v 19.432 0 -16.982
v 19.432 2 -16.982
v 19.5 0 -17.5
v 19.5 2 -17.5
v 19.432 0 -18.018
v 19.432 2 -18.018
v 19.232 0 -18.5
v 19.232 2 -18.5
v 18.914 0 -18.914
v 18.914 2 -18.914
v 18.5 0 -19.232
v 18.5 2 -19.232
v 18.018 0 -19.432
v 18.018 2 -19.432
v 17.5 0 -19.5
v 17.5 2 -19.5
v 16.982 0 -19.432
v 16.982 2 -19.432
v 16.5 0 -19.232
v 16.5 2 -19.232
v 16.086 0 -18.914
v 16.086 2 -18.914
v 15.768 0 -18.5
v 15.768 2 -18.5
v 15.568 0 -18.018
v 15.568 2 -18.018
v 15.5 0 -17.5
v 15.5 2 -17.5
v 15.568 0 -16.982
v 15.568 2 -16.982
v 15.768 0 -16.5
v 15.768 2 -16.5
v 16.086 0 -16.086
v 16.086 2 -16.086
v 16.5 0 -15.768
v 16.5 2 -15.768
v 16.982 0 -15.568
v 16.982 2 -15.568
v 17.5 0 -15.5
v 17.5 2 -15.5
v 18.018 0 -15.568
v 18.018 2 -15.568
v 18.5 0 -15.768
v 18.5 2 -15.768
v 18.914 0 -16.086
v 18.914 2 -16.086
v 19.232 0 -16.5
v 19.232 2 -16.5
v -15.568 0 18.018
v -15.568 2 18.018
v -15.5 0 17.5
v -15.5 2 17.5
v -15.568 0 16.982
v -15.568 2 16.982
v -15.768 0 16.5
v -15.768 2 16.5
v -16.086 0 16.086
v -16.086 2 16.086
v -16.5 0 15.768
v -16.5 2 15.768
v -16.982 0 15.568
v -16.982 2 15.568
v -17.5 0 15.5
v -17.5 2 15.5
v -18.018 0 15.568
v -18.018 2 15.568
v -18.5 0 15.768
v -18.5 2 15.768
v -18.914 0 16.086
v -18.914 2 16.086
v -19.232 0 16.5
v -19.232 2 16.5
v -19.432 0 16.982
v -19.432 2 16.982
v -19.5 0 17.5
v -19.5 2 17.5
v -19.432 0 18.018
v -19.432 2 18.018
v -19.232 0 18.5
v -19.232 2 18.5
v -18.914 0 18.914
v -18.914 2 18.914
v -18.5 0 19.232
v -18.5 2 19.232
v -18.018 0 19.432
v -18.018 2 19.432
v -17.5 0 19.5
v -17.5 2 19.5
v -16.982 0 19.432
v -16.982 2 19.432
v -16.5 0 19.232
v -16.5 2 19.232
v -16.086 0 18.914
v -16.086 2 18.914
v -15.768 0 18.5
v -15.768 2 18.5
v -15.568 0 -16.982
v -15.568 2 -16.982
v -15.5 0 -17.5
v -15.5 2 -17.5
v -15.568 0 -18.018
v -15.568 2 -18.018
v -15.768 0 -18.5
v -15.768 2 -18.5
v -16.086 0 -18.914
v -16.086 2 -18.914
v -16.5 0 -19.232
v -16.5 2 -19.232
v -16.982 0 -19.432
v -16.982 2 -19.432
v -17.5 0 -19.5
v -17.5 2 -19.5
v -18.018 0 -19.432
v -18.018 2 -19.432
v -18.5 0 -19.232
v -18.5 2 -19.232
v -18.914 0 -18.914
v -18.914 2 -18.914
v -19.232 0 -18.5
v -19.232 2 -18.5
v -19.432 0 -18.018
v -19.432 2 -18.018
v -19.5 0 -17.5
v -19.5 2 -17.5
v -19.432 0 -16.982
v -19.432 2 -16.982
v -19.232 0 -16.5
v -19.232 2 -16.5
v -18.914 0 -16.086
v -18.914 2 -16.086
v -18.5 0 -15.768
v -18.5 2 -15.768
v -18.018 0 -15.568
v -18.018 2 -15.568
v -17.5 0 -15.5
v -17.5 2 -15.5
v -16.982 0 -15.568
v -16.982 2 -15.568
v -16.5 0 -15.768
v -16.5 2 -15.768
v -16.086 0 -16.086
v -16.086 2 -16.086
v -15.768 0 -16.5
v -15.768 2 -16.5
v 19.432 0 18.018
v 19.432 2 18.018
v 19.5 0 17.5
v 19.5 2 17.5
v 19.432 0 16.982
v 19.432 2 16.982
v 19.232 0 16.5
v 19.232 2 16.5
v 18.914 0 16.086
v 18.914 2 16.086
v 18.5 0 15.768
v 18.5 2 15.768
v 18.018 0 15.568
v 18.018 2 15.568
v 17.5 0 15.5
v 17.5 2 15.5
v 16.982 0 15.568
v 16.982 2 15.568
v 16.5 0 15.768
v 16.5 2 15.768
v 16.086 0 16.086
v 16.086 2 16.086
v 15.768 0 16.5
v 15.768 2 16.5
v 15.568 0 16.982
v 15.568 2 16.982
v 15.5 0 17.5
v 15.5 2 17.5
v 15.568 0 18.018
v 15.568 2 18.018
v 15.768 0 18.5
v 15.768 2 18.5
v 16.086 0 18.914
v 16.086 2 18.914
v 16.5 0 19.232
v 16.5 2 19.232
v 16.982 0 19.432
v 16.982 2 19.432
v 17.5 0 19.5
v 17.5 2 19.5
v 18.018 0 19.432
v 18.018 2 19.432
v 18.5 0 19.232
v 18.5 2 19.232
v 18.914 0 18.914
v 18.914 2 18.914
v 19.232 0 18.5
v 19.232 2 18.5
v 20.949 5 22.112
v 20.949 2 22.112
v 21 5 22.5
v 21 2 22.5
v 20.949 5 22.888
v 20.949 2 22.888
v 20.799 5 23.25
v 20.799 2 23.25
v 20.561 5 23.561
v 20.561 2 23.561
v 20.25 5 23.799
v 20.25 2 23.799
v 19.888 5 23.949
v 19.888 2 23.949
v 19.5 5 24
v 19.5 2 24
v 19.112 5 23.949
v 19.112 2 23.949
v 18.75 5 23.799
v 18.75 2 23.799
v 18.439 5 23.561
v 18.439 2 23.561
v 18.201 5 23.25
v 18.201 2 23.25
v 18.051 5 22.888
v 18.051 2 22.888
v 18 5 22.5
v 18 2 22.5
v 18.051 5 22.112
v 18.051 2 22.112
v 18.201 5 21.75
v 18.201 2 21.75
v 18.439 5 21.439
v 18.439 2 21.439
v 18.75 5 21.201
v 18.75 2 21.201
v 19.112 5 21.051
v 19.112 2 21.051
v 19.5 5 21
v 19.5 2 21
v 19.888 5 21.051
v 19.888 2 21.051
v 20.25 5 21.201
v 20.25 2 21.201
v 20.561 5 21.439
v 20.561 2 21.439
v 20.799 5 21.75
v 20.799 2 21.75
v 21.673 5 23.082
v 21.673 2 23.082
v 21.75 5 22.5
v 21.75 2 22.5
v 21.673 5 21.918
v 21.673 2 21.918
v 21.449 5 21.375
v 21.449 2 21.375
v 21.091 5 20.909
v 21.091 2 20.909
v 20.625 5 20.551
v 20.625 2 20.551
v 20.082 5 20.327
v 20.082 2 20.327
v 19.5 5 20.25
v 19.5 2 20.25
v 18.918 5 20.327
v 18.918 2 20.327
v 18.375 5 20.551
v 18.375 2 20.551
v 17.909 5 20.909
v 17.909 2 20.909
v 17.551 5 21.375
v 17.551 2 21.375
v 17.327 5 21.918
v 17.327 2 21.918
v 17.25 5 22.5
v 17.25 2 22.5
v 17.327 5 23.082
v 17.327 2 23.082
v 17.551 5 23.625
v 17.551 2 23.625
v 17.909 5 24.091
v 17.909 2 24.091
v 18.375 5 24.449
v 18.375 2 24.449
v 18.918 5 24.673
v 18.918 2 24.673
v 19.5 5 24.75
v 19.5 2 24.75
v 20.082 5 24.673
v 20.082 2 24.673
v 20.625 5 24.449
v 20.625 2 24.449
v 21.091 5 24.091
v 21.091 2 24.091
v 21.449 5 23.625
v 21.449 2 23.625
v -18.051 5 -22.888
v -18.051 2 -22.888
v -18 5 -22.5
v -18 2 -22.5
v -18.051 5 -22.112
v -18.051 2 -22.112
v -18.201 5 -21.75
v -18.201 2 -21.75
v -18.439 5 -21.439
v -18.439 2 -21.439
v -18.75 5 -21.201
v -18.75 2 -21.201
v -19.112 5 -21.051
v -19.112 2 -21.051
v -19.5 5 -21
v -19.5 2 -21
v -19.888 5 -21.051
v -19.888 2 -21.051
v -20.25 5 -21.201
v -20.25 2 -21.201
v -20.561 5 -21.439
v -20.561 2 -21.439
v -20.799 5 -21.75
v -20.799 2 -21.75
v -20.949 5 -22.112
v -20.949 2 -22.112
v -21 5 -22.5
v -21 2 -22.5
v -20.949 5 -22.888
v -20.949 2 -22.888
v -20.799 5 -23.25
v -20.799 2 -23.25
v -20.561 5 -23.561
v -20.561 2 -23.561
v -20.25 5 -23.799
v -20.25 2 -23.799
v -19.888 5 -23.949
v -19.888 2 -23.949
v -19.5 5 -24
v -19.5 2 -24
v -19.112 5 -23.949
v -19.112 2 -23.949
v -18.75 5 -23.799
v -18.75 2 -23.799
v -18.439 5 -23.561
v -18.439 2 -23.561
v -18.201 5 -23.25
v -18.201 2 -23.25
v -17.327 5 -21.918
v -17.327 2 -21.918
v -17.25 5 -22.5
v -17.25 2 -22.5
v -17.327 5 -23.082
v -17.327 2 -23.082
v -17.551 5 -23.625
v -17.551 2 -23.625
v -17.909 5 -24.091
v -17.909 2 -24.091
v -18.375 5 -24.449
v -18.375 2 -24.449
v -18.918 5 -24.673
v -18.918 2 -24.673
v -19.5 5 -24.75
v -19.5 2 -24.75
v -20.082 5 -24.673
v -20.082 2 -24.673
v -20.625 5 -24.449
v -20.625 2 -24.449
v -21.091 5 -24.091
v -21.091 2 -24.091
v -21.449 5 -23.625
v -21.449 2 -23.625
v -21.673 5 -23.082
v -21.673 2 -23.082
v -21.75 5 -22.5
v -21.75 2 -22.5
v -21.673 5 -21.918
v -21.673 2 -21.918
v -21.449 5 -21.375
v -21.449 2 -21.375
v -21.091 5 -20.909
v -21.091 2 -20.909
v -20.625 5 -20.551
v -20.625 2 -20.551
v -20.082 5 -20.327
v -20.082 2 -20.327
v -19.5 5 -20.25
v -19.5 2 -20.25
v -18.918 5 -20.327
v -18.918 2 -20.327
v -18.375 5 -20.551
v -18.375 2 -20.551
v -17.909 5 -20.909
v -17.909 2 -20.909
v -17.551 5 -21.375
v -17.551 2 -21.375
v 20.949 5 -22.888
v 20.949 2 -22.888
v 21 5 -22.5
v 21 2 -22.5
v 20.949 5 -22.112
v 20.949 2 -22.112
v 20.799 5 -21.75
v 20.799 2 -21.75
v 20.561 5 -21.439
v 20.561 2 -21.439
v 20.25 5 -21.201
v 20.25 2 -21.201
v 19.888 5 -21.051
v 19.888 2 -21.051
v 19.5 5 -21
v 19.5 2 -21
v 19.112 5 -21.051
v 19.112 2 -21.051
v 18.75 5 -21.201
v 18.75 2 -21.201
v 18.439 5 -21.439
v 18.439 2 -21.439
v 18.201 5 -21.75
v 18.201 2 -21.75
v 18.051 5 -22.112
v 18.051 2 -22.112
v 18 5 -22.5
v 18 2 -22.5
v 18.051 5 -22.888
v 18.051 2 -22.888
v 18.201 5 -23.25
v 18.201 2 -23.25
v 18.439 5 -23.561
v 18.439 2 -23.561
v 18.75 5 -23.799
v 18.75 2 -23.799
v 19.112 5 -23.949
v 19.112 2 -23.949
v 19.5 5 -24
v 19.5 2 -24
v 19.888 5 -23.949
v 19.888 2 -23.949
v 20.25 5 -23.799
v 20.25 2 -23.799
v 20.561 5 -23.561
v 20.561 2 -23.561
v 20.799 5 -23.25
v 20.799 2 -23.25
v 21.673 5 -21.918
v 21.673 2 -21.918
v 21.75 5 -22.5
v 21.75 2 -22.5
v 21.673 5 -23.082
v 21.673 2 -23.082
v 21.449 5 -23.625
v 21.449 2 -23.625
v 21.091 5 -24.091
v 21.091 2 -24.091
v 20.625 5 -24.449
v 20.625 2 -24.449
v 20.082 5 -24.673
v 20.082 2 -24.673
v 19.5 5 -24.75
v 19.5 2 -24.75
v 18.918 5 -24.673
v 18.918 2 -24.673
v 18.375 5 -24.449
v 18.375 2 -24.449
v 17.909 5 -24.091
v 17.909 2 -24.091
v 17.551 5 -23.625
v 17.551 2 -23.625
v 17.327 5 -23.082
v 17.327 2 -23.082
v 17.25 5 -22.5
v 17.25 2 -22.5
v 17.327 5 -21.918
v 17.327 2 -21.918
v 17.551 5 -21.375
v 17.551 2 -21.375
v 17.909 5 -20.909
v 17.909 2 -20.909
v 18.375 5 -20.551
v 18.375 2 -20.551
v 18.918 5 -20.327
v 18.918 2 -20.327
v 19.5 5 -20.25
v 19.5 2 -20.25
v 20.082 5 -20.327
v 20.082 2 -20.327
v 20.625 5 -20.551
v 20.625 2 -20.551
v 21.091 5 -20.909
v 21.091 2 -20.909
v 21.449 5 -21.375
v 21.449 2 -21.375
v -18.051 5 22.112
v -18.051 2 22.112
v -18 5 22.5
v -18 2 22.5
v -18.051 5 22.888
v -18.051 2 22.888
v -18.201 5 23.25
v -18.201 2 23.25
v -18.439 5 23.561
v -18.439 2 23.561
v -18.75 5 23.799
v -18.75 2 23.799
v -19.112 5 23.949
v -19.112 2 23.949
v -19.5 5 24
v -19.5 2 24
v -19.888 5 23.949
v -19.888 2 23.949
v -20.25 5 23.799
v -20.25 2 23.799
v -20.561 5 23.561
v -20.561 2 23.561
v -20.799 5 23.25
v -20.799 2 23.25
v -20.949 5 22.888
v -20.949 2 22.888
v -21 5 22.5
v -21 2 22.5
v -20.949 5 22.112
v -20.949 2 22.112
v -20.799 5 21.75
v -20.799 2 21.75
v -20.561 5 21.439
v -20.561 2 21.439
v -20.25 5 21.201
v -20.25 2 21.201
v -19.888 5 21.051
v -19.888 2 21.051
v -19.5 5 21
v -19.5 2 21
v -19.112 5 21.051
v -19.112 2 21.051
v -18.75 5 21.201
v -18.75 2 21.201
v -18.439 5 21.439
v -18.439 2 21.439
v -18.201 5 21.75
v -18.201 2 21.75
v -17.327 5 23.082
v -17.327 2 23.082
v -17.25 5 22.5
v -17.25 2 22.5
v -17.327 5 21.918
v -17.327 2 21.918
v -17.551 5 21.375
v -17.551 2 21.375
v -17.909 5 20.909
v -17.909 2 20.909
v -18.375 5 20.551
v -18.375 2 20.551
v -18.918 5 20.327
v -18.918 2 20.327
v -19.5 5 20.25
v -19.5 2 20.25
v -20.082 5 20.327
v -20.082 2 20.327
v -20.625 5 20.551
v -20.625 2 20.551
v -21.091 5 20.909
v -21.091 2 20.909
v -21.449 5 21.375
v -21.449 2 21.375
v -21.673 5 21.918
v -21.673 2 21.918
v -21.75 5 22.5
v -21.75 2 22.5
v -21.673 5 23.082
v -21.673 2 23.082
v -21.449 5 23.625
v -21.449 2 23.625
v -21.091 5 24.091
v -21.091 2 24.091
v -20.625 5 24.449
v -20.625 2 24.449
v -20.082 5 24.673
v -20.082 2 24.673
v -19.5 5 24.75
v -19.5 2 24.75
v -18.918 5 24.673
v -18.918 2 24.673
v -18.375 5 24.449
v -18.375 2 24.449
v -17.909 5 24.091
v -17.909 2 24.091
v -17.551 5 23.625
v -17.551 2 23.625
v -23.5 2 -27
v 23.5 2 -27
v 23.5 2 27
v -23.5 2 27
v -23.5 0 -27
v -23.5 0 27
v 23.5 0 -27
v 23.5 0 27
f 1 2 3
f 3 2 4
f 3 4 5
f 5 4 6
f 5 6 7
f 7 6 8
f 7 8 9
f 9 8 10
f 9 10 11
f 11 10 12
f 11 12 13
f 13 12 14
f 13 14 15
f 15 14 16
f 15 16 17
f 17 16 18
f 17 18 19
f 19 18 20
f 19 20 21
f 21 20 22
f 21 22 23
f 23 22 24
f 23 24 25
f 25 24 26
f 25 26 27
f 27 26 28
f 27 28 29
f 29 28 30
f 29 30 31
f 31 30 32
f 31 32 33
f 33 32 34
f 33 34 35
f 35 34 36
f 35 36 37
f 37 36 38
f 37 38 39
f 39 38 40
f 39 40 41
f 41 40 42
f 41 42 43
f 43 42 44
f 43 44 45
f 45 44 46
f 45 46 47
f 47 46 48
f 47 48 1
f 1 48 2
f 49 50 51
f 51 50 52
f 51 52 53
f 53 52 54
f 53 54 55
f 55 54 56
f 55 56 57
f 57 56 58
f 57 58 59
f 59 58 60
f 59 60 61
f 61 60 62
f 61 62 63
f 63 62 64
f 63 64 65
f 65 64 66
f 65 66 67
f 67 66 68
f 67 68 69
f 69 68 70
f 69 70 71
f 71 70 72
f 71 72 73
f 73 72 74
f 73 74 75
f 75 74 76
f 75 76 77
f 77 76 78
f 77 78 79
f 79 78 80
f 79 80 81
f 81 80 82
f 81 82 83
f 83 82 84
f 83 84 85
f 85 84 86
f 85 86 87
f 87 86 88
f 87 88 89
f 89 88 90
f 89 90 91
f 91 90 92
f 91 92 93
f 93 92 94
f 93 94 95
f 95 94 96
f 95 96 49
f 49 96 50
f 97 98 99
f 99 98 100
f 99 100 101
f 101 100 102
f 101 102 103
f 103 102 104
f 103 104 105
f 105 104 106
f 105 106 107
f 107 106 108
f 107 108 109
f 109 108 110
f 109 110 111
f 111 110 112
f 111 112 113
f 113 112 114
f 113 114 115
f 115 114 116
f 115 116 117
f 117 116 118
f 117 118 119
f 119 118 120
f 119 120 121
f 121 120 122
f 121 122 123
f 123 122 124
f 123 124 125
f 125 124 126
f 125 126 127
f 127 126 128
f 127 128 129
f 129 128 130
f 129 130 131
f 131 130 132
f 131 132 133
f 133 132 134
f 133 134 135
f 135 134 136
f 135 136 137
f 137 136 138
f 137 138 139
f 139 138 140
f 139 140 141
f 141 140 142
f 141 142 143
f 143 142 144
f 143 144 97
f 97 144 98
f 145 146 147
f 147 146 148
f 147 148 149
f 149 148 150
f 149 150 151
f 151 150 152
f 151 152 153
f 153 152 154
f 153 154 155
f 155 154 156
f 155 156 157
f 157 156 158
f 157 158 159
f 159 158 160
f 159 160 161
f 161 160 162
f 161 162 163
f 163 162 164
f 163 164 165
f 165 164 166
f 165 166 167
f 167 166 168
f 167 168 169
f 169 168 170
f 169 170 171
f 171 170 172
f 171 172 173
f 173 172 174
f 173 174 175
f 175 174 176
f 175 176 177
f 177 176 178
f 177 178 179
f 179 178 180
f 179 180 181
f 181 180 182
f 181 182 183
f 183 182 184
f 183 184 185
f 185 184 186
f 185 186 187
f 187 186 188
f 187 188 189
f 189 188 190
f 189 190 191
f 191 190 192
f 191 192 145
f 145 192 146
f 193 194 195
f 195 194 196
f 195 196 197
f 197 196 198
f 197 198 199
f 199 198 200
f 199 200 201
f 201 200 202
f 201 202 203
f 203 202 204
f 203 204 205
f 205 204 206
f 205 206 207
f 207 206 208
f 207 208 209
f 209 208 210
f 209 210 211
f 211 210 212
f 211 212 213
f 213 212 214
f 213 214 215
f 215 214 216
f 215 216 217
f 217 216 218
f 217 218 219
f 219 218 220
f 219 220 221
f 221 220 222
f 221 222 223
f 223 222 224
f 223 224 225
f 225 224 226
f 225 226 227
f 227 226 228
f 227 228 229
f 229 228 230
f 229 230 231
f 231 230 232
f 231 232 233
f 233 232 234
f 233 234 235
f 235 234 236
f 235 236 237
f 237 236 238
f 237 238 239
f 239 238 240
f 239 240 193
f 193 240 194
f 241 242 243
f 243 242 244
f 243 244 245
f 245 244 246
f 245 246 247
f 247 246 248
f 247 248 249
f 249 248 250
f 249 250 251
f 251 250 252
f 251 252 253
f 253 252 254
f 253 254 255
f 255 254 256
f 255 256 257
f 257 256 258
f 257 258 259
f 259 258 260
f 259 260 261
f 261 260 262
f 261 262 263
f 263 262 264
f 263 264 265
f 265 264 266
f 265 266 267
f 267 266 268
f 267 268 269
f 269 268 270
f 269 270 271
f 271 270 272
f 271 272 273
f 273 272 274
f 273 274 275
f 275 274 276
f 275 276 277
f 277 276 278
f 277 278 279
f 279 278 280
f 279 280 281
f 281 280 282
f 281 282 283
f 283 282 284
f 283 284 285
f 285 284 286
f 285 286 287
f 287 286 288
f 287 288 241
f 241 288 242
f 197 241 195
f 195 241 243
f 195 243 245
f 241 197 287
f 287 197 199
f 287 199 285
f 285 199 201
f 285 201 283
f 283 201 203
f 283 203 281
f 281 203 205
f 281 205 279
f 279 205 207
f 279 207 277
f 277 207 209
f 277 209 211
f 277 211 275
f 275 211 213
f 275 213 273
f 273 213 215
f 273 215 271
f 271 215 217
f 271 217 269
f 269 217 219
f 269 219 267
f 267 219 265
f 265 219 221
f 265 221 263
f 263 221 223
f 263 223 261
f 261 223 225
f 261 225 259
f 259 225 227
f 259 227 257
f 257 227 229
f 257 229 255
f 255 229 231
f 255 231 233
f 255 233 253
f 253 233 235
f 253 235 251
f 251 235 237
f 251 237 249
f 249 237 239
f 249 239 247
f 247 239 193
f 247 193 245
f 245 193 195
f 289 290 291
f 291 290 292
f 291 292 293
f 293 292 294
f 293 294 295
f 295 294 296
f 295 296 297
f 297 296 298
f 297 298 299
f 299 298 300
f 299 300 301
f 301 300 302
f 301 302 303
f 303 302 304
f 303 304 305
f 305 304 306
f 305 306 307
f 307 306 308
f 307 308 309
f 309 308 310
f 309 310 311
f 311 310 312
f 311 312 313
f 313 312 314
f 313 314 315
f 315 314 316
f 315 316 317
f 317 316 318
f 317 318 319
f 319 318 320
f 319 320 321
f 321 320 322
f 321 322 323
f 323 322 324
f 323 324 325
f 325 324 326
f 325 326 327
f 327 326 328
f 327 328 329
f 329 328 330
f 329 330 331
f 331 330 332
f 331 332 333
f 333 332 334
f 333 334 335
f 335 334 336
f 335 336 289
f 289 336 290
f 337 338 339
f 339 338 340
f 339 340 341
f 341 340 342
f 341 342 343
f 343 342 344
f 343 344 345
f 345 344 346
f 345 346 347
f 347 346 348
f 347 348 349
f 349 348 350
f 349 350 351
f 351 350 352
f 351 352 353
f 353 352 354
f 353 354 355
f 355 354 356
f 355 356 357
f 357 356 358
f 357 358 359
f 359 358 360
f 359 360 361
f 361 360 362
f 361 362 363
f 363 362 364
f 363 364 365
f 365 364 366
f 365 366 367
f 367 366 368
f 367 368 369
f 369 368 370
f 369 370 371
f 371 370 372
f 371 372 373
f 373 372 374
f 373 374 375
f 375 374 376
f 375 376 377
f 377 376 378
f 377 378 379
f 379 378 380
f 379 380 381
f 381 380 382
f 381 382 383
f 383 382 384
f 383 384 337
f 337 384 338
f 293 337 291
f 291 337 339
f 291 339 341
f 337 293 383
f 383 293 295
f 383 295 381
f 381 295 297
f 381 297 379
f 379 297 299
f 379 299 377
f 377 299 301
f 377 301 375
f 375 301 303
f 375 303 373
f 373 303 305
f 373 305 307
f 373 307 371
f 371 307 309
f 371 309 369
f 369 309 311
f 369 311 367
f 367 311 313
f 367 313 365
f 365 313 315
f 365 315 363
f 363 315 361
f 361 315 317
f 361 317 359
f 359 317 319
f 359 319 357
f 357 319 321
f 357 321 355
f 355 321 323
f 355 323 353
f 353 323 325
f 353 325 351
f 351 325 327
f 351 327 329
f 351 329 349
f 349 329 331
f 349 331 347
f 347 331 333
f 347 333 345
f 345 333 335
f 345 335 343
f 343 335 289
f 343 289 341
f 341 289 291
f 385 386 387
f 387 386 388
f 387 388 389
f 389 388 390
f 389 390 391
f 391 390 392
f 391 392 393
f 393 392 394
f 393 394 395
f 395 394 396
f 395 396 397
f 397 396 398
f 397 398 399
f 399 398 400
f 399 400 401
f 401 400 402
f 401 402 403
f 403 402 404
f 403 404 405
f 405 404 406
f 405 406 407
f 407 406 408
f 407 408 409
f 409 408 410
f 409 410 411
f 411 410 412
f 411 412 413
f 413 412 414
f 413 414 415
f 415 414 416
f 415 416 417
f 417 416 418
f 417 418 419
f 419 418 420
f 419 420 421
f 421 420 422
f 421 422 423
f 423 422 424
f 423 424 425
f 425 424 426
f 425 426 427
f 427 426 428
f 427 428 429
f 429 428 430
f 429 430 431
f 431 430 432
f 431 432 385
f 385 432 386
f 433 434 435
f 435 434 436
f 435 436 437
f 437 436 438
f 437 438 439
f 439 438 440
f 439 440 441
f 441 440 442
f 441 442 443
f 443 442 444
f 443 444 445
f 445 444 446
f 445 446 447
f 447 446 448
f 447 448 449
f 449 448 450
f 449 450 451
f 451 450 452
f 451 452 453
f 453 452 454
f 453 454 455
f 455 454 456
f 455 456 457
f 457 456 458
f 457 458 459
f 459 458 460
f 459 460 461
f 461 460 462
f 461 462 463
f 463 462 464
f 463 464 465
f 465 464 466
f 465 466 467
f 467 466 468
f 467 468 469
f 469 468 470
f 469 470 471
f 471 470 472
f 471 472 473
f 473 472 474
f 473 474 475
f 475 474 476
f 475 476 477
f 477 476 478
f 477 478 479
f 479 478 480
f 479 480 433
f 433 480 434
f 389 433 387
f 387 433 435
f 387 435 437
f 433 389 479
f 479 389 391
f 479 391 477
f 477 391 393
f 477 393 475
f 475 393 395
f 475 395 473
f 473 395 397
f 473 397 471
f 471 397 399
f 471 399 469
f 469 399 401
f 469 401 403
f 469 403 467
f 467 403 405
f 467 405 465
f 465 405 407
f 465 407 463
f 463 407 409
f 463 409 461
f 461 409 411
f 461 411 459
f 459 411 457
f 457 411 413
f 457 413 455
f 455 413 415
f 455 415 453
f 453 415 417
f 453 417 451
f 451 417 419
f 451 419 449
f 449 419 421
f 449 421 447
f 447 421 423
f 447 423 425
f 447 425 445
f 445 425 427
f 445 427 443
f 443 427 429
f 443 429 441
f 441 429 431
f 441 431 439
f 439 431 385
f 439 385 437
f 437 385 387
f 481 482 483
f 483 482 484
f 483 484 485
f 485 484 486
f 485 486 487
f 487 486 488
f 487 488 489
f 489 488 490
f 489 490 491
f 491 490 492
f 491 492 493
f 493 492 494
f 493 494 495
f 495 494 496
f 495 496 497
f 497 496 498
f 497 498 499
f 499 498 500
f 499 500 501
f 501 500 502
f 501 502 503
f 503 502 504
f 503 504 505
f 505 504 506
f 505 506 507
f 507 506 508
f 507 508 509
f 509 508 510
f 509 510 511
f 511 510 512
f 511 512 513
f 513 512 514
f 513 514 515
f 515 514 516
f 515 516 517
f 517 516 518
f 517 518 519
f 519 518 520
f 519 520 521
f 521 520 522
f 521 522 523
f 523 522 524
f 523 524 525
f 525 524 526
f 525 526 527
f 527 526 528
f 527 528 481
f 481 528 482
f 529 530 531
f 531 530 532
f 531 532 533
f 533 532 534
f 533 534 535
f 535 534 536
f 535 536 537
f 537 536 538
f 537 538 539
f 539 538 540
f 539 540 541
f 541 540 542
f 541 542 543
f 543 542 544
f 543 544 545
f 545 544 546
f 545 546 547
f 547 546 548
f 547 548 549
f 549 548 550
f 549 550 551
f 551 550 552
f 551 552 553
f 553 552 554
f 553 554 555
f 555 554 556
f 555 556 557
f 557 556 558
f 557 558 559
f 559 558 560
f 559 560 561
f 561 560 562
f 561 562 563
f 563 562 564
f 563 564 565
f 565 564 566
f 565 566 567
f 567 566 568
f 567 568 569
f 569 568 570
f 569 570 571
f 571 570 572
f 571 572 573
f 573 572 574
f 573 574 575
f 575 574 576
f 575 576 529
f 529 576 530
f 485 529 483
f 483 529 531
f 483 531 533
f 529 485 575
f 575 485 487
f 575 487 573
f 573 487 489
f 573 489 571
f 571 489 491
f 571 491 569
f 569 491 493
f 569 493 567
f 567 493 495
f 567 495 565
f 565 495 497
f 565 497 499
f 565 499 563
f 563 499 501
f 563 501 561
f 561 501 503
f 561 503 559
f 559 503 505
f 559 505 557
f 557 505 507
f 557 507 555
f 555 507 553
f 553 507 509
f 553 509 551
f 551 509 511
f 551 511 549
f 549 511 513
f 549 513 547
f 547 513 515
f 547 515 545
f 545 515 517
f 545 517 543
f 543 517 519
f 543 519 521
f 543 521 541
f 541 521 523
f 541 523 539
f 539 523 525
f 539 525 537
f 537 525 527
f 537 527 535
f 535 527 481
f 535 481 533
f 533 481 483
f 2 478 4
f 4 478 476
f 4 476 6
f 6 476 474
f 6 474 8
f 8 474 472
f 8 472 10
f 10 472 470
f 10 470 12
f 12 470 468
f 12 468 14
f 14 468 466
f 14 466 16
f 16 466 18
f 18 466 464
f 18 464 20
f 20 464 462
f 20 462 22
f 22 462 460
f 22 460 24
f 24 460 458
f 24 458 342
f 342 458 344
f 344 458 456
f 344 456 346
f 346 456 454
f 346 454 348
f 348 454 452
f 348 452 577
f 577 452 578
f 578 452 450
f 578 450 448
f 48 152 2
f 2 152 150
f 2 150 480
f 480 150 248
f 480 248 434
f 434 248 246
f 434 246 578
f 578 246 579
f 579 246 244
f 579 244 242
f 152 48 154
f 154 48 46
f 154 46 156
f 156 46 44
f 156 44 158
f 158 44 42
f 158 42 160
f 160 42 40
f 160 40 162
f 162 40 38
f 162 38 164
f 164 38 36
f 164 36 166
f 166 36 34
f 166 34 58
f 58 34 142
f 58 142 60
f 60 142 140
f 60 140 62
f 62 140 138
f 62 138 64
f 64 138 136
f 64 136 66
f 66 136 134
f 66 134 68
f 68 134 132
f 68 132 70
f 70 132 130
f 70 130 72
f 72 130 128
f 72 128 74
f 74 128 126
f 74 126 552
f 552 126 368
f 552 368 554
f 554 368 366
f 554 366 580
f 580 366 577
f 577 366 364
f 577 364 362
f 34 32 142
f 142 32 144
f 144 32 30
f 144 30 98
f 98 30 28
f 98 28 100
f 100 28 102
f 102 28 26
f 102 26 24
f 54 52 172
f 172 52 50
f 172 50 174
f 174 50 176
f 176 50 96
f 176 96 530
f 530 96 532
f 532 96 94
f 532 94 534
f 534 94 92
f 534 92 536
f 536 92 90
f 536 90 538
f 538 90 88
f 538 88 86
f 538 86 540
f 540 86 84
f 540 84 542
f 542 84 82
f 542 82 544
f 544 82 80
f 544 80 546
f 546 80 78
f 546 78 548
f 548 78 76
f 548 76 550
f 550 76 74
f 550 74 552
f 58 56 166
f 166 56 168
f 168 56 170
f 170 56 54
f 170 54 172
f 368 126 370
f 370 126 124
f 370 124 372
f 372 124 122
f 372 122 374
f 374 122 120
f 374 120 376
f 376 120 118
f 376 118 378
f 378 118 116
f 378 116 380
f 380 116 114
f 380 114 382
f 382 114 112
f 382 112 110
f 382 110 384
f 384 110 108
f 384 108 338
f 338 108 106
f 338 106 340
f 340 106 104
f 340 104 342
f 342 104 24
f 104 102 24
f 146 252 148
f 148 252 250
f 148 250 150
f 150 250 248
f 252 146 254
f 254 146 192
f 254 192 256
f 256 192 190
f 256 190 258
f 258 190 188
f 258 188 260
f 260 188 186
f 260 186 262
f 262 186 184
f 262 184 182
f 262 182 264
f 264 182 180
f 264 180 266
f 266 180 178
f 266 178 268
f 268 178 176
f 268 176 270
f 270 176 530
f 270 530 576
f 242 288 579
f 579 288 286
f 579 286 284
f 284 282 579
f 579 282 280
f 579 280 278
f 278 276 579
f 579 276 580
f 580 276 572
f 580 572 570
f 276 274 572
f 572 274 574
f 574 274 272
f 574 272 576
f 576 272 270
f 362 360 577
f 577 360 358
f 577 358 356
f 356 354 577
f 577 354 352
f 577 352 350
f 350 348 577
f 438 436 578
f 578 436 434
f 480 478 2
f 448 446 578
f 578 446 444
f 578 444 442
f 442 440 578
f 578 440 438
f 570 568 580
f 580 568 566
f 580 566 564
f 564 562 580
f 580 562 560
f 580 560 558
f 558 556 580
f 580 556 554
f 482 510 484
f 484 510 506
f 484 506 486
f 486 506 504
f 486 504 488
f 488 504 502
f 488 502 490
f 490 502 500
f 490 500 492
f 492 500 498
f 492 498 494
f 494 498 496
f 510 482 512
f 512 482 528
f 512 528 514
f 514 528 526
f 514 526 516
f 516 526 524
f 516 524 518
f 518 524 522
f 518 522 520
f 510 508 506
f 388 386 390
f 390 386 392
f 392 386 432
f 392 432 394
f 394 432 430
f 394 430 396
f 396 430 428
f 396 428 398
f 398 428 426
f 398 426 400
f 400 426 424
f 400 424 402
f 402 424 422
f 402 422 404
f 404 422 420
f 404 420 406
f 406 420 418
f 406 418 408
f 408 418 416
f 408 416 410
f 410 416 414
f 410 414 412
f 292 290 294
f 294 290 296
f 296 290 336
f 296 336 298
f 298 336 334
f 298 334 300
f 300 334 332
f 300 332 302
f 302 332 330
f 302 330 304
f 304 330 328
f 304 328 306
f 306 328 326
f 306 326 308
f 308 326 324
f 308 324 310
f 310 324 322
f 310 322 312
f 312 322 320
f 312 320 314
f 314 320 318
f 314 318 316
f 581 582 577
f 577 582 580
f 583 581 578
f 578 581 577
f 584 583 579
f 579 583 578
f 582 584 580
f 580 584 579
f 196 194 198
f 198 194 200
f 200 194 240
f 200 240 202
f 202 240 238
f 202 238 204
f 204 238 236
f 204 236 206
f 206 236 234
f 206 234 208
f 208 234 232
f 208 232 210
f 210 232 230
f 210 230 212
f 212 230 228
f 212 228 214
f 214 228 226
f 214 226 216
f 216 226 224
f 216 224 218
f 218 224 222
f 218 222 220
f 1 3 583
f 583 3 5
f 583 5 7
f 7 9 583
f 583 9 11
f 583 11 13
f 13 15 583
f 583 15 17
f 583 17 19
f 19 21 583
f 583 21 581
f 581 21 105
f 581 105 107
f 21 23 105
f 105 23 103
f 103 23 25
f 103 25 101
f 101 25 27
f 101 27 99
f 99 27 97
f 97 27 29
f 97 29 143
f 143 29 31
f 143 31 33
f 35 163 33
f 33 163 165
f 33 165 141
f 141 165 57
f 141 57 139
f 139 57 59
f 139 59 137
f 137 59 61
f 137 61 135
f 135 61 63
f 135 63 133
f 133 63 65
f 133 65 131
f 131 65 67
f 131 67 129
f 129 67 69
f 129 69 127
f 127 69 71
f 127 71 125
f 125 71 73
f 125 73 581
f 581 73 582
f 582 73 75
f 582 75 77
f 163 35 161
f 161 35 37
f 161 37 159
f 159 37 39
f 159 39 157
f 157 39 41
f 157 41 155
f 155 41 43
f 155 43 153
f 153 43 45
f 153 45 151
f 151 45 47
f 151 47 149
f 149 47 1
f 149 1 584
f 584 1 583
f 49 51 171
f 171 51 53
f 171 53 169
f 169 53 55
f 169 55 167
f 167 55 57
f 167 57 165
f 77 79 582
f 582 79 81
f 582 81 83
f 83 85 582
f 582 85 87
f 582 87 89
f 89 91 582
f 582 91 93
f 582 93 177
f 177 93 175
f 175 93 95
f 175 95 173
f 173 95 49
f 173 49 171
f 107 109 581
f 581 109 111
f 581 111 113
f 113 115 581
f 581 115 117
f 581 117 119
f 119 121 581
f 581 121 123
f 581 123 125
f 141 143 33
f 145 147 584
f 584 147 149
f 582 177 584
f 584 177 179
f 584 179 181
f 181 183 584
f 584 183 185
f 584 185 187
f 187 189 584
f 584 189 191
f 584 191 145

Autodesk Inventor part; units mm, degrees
ref_plane "YZ Plane" through (0, 0, 0) normal (1, 0, 0) x (0, 1, 0)
ref_plane "XZ Plane" through (0, 0, 0) normal (0, 1, 0) x (-1, 0, 0)
ref_plane "XY Plane" through (0, 0, 0) normal (0, 0, 1) x (1, 0, 0)
sketch "Sketch1" plane through (0, 0, 0) normal (0, 1, 0) x (-1, 0, 0)
  point P0 (0, 0)
sketch "Sketch2" plane through (0, 0, 0) normal (0, 1, 0) x (-1, 0, 0)
  line L0 (23.5, 27) -> (-23.5, 27)
  line L1 (-23.5, 27) -> (-23.5, -27)
  line L2 (-23.5, -27) -> (23.5, -27)
  line L3 (23.5, -27) -> (23.5, 27)
  dimension "d4" = 47
  dimension "d5" = 54
extrude "Extrusion1" add sketch "Sketch2" along normal blind 2
sketch "Sketch3" plane through (0, 2, 0) normal (0, 1, 0) x (1, 0, 0)
  point P0 (0, 0)
sketch "Sketch4" plane through (0, 2, 0) normal (0, 1, 0) x (1, 0, 0)
  circle A0 centre (19.5, 22.5) radius 1.5
  circle A1 centre (19.5, -22.5) radius 1.5
  circle A2 centre (-19.5, -22.5) radius 1.5
  circle A3 centre (-19.5, 22.5) radius 1.5
  circle A4 centre (-19.5, 22.5) radius 2.25
  circle A5 centre (19.5, 22.5) radius 2.25
  circle A6 centre (19.5, -22.5) radius 2.25
  circle A7 centre (-19.5, -22.5) radius 2.25
  dimension "d24" = 3
  dimension "d27" = 3
  dimension "d30" = 3
  dimension "d33" = 3
  dimension "d34" = 4.5
  dimension "d35" = 4.5
  dimension "d36" = 4.5
  dimension "d37" = 4.5
extrude "Extrusion2" add sketch "Sketch4" along normal blind 3
sketch "Sketch5" plane through (0, 2, 0) normal (0, 1, 0) x (1, 0, 0)
  circle A0 centre (-17.5, -17.5) radius 2
  circle A1 centre (-17.5, 17.5) radius 2
  circle A2 centre (17.5, 17.5) radius 2
  circle A3 centre (17.5, -17.5) radius 2
  dimension "d42" = 4
  dimension "d43" = 4
  dimension "d44" = 4
  dimension "d45" = 4
extrude "Extrusion3" cut sketch "Sketch5" against normal through all
properties part number "Box1_Buttom"
